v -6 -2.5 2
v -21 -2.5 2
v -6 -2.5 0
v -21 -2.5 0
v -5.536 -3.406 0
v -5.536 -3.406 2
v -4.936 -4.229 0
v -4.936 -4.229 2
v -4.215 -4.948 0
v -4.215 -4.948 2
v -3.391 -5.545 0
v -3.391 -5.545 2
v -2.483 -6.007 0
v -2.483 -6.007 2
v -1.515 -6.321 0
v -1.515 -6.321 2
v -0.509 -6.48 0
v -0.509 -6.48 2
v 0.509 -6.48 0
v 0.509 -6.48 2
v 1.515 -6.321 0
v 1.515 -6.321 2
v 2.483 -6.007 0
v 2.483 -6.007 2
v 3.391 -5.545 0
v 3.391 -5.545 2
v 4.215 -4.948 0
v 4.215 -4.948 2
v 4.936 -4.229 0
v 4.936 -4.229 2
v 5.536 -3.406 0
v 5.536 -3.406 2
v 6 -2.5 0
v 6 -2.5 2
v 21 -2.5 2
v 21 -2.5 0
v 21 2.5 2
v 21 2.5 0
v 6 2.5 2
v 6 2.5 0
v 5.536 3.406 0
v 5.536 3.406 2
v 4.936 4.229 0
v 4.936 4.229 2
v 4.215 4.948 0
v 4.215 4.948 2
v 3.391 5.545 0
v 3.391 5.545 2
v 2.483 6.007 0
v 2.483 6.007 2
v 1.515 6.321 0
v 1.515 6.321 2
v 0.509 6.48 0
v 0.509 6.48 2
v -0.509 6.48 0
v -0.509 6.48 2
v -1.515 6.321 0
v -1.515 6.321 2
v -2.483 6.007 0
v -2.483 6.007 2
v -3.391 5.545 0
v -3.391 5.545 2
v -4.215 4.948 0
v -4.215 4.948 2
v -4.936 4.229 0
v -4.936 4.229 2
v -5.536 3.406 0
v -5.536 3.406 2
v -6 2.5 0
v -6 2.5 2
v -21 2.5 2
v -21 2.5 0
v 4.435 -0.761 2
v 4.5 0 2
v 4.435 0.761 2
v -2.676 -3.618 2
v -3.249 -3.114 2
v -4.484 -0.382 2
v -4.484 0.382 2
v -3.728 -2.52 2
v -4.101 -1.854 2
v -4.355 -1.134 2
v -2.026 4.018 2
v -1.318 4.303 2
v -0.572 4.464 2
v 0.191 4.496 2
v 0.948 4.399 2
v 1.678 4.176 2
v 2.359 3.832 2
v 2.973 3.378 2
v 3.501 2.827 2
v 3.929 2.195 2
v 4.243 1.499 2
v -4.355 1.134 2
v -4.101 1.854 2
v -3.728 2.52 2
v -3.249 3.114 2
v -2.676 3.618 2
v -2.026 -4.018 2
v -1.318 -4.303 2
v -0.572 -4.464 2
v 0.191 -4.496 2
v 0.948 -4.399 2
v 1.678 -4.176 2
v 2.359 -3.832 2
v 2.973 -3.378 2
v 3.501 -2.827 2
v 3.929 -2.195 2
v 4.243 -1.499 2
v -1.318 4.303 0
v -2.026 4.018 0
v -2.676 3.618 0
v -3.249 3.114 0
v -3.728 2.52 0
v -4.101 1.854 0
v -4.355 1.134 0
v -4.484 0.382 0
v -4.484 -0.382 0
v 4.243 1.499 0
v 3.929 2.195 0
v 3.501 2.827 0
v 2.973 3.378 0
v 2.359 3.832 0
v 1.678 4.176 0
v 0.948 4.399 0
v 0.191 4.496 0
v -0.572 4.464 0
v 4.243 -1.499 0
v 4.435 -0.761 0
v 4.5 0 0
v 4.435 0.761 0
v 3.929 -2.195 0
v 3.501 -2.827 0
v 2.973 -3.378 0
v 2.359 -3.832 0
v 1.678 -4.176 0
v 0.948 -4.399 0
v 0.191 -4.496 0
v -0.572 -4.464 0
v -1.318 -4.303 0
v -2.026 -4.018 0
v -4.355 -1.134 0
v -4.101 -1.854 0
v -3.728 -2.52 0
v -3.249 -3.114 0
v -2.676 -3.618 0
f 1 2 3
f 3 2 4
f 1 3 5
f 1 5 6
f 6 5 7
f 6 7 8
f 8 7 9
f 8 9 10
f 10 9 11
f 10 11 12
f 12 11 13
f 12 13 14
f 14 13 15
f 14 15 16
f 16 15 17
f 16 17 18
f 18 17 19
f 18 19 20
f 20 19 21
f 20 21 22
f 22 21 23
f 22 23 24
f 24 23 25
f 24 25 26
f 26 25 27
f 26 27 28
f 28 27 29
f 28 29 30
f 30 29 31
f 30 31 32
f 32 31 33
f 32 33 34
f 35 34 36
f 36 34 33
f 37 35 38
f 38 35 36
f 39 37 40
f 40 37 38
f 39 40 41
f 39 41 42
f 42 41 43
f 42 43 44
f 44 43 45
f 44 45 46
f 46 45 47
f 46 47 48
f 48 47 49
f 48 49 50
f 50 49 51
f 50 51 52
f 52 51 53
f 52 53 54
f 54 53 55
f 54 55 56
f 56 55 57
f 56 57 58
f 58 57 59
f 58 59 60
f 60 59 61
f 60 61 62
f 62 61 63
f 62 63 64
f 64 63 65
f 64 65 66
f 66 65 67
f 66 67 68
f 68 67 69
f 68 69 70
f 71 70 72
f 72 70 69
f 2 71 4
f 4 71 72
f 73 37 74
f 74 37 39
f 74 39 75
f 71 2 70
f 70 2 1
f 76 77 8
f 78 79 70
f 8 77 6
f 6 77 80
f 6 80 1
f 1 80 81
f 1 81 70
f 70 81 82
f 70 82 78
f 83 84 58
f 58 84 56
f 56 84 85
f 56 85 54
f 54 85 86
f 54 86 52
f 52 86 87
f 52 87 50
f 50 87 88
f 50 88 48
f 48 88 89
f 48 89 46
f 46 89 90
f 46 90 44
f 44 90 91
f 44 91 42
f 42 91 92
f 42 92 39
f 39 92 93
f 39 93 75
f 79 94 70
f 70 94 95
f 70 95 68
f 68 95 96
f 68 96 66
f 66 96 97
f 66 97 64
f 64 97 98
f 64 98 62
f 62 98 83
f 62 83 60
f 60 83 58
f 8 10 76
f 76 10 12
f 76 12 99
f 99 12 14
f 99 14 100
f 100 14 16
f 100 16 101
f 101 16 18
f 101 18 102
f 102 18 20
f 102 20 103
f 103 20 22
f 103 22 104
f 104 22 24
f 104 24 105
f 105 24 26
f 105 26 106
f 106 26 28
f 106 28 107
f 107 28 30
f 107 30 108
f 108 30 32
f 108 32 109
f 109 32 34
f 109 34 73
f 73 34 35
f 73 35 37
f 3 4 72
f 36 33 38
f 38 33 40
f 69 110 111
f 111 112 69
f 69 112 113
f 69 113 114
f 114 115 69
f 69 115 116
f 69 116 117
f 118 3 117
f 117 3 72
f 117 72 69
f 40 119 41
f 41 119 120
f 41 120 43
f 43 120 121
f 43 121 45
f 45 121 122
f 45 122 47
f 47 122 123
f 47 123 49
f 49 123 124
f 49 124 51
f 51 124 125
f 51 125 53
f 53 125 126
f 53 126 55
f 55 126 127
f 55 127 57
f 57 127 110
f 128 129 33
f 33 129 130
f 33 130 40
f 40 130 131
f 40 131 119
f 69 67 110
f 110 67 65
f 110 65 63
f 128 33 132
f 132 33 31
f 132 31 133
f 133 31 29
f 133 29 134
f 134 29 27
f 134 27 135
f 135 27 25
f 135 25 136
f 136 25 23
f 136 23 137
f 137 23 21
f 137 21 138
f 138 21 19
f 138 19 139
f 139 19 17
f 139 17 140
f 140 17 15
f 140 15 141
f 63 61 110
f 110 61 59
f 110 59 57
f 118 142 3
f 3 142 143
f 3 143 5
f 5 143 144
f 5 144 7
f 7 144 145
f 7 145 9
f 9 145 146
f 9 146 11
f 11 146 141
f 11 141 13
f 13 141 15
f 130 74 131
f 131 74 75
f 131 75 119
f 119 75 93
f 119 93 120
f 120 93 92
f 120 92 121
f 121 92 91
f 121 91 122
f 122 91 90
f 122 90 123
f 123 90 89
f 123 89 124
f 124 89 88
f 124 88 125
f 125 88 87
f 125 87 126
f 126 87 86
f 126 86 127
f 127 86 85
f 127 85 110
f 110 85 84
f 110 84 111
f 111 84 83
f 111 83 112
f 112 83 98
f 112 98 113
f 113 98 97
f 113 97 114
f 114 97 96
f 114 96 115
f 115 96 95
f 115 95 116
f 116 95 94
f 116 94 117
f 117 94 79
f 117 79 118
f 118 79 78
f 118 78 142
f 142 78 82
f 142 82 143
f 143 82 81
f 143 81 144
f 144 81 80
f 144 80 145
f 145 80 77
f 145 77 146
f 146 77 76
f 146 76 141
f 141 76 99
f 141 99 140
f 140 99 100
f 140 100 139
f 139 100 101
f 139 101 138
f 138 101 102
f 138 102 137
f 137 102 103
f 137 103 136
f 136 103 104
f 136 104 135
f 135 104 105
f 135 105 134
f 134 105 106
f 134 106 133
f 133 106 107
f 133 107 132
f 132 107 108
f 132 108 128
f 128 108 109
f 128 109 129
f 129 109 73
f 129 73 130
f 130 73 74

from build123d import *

# Parameters (mm, degrees)
ESTRUSIONE_ESTRUSIONE1_DEPTH = 2
SCHIZZO3_R                   = 4.5
TAGLIO_ESTRUSIONE1_DEPTH     = 2


with BuildPart() as part:
    # Schizzo2 → Estrusione-Estrusione1 (new body)
    with BuildSketch(Plane.XY):
        with BuildLine():
            Line((-21, 2.5), (-21, -2.5))
            Line((-21, -2.5), (-6, -2.5))
            ThreePointArc((-6, -2.5), (-6.5, 0), (-6, 2.5))
            Line((-6, 2.5), (-21, 2.5))
        make_face()
        with BuildLine():
            ThreePointArc((-6, 2.5), (-6.5, 0), (-6, -2.5))
            Line((-6, -2.5), (6, -2.5))
            ThreePointArc((6, -2.5), (6.373774392, -1.274754878), (6.5, 0))
            ThreePointArc((6.5, 0), (6.373774392, 1.274754878), (6, 2.5))
            Line((6, 2.5), (-6, 2.5))
        make_face()
        with BuildLine():
            ThreePointArc((6.5, 0), (6.373774392, -1.274754878), (6, -2.5))
            Line((6, -2.5), (21, -2.5))
            Line((21, -2.5), (21, 2.5))
            Line((21, 2.5), (6, 2.5))
            ThreePointArc((6, 2.5), (6.373774392, 1.274754878), (6.5, 0))
        make_face()
        with BuildLine():
            ThreePointArc((6, 2.5), (0, 6.5), (-6, 2.5))
            Line((-6, 2.5), (6, 2.5))
        make_face()
        with BuildLine():
            Line((6, -2.5), (-6, -2.5))
            ThreePointArc((-6, -2.5), (0, -6.5), (6, -2.5))
        make_face()
    extrude(amount=ESTRUSIONE_ESTRUSIONE1_DEPTH)

    # Schizzo3 → Taglio-Estrusione1 (cut)
    with BuildSketch(Plane.XY.offset(2)):
        Circle(SCHIZZO3_R)
    extrude(amount=-TAGLIO_ESTRUSIONE1_DEPTH, mode=Mode.SUBTRACT)


solid = part.part
